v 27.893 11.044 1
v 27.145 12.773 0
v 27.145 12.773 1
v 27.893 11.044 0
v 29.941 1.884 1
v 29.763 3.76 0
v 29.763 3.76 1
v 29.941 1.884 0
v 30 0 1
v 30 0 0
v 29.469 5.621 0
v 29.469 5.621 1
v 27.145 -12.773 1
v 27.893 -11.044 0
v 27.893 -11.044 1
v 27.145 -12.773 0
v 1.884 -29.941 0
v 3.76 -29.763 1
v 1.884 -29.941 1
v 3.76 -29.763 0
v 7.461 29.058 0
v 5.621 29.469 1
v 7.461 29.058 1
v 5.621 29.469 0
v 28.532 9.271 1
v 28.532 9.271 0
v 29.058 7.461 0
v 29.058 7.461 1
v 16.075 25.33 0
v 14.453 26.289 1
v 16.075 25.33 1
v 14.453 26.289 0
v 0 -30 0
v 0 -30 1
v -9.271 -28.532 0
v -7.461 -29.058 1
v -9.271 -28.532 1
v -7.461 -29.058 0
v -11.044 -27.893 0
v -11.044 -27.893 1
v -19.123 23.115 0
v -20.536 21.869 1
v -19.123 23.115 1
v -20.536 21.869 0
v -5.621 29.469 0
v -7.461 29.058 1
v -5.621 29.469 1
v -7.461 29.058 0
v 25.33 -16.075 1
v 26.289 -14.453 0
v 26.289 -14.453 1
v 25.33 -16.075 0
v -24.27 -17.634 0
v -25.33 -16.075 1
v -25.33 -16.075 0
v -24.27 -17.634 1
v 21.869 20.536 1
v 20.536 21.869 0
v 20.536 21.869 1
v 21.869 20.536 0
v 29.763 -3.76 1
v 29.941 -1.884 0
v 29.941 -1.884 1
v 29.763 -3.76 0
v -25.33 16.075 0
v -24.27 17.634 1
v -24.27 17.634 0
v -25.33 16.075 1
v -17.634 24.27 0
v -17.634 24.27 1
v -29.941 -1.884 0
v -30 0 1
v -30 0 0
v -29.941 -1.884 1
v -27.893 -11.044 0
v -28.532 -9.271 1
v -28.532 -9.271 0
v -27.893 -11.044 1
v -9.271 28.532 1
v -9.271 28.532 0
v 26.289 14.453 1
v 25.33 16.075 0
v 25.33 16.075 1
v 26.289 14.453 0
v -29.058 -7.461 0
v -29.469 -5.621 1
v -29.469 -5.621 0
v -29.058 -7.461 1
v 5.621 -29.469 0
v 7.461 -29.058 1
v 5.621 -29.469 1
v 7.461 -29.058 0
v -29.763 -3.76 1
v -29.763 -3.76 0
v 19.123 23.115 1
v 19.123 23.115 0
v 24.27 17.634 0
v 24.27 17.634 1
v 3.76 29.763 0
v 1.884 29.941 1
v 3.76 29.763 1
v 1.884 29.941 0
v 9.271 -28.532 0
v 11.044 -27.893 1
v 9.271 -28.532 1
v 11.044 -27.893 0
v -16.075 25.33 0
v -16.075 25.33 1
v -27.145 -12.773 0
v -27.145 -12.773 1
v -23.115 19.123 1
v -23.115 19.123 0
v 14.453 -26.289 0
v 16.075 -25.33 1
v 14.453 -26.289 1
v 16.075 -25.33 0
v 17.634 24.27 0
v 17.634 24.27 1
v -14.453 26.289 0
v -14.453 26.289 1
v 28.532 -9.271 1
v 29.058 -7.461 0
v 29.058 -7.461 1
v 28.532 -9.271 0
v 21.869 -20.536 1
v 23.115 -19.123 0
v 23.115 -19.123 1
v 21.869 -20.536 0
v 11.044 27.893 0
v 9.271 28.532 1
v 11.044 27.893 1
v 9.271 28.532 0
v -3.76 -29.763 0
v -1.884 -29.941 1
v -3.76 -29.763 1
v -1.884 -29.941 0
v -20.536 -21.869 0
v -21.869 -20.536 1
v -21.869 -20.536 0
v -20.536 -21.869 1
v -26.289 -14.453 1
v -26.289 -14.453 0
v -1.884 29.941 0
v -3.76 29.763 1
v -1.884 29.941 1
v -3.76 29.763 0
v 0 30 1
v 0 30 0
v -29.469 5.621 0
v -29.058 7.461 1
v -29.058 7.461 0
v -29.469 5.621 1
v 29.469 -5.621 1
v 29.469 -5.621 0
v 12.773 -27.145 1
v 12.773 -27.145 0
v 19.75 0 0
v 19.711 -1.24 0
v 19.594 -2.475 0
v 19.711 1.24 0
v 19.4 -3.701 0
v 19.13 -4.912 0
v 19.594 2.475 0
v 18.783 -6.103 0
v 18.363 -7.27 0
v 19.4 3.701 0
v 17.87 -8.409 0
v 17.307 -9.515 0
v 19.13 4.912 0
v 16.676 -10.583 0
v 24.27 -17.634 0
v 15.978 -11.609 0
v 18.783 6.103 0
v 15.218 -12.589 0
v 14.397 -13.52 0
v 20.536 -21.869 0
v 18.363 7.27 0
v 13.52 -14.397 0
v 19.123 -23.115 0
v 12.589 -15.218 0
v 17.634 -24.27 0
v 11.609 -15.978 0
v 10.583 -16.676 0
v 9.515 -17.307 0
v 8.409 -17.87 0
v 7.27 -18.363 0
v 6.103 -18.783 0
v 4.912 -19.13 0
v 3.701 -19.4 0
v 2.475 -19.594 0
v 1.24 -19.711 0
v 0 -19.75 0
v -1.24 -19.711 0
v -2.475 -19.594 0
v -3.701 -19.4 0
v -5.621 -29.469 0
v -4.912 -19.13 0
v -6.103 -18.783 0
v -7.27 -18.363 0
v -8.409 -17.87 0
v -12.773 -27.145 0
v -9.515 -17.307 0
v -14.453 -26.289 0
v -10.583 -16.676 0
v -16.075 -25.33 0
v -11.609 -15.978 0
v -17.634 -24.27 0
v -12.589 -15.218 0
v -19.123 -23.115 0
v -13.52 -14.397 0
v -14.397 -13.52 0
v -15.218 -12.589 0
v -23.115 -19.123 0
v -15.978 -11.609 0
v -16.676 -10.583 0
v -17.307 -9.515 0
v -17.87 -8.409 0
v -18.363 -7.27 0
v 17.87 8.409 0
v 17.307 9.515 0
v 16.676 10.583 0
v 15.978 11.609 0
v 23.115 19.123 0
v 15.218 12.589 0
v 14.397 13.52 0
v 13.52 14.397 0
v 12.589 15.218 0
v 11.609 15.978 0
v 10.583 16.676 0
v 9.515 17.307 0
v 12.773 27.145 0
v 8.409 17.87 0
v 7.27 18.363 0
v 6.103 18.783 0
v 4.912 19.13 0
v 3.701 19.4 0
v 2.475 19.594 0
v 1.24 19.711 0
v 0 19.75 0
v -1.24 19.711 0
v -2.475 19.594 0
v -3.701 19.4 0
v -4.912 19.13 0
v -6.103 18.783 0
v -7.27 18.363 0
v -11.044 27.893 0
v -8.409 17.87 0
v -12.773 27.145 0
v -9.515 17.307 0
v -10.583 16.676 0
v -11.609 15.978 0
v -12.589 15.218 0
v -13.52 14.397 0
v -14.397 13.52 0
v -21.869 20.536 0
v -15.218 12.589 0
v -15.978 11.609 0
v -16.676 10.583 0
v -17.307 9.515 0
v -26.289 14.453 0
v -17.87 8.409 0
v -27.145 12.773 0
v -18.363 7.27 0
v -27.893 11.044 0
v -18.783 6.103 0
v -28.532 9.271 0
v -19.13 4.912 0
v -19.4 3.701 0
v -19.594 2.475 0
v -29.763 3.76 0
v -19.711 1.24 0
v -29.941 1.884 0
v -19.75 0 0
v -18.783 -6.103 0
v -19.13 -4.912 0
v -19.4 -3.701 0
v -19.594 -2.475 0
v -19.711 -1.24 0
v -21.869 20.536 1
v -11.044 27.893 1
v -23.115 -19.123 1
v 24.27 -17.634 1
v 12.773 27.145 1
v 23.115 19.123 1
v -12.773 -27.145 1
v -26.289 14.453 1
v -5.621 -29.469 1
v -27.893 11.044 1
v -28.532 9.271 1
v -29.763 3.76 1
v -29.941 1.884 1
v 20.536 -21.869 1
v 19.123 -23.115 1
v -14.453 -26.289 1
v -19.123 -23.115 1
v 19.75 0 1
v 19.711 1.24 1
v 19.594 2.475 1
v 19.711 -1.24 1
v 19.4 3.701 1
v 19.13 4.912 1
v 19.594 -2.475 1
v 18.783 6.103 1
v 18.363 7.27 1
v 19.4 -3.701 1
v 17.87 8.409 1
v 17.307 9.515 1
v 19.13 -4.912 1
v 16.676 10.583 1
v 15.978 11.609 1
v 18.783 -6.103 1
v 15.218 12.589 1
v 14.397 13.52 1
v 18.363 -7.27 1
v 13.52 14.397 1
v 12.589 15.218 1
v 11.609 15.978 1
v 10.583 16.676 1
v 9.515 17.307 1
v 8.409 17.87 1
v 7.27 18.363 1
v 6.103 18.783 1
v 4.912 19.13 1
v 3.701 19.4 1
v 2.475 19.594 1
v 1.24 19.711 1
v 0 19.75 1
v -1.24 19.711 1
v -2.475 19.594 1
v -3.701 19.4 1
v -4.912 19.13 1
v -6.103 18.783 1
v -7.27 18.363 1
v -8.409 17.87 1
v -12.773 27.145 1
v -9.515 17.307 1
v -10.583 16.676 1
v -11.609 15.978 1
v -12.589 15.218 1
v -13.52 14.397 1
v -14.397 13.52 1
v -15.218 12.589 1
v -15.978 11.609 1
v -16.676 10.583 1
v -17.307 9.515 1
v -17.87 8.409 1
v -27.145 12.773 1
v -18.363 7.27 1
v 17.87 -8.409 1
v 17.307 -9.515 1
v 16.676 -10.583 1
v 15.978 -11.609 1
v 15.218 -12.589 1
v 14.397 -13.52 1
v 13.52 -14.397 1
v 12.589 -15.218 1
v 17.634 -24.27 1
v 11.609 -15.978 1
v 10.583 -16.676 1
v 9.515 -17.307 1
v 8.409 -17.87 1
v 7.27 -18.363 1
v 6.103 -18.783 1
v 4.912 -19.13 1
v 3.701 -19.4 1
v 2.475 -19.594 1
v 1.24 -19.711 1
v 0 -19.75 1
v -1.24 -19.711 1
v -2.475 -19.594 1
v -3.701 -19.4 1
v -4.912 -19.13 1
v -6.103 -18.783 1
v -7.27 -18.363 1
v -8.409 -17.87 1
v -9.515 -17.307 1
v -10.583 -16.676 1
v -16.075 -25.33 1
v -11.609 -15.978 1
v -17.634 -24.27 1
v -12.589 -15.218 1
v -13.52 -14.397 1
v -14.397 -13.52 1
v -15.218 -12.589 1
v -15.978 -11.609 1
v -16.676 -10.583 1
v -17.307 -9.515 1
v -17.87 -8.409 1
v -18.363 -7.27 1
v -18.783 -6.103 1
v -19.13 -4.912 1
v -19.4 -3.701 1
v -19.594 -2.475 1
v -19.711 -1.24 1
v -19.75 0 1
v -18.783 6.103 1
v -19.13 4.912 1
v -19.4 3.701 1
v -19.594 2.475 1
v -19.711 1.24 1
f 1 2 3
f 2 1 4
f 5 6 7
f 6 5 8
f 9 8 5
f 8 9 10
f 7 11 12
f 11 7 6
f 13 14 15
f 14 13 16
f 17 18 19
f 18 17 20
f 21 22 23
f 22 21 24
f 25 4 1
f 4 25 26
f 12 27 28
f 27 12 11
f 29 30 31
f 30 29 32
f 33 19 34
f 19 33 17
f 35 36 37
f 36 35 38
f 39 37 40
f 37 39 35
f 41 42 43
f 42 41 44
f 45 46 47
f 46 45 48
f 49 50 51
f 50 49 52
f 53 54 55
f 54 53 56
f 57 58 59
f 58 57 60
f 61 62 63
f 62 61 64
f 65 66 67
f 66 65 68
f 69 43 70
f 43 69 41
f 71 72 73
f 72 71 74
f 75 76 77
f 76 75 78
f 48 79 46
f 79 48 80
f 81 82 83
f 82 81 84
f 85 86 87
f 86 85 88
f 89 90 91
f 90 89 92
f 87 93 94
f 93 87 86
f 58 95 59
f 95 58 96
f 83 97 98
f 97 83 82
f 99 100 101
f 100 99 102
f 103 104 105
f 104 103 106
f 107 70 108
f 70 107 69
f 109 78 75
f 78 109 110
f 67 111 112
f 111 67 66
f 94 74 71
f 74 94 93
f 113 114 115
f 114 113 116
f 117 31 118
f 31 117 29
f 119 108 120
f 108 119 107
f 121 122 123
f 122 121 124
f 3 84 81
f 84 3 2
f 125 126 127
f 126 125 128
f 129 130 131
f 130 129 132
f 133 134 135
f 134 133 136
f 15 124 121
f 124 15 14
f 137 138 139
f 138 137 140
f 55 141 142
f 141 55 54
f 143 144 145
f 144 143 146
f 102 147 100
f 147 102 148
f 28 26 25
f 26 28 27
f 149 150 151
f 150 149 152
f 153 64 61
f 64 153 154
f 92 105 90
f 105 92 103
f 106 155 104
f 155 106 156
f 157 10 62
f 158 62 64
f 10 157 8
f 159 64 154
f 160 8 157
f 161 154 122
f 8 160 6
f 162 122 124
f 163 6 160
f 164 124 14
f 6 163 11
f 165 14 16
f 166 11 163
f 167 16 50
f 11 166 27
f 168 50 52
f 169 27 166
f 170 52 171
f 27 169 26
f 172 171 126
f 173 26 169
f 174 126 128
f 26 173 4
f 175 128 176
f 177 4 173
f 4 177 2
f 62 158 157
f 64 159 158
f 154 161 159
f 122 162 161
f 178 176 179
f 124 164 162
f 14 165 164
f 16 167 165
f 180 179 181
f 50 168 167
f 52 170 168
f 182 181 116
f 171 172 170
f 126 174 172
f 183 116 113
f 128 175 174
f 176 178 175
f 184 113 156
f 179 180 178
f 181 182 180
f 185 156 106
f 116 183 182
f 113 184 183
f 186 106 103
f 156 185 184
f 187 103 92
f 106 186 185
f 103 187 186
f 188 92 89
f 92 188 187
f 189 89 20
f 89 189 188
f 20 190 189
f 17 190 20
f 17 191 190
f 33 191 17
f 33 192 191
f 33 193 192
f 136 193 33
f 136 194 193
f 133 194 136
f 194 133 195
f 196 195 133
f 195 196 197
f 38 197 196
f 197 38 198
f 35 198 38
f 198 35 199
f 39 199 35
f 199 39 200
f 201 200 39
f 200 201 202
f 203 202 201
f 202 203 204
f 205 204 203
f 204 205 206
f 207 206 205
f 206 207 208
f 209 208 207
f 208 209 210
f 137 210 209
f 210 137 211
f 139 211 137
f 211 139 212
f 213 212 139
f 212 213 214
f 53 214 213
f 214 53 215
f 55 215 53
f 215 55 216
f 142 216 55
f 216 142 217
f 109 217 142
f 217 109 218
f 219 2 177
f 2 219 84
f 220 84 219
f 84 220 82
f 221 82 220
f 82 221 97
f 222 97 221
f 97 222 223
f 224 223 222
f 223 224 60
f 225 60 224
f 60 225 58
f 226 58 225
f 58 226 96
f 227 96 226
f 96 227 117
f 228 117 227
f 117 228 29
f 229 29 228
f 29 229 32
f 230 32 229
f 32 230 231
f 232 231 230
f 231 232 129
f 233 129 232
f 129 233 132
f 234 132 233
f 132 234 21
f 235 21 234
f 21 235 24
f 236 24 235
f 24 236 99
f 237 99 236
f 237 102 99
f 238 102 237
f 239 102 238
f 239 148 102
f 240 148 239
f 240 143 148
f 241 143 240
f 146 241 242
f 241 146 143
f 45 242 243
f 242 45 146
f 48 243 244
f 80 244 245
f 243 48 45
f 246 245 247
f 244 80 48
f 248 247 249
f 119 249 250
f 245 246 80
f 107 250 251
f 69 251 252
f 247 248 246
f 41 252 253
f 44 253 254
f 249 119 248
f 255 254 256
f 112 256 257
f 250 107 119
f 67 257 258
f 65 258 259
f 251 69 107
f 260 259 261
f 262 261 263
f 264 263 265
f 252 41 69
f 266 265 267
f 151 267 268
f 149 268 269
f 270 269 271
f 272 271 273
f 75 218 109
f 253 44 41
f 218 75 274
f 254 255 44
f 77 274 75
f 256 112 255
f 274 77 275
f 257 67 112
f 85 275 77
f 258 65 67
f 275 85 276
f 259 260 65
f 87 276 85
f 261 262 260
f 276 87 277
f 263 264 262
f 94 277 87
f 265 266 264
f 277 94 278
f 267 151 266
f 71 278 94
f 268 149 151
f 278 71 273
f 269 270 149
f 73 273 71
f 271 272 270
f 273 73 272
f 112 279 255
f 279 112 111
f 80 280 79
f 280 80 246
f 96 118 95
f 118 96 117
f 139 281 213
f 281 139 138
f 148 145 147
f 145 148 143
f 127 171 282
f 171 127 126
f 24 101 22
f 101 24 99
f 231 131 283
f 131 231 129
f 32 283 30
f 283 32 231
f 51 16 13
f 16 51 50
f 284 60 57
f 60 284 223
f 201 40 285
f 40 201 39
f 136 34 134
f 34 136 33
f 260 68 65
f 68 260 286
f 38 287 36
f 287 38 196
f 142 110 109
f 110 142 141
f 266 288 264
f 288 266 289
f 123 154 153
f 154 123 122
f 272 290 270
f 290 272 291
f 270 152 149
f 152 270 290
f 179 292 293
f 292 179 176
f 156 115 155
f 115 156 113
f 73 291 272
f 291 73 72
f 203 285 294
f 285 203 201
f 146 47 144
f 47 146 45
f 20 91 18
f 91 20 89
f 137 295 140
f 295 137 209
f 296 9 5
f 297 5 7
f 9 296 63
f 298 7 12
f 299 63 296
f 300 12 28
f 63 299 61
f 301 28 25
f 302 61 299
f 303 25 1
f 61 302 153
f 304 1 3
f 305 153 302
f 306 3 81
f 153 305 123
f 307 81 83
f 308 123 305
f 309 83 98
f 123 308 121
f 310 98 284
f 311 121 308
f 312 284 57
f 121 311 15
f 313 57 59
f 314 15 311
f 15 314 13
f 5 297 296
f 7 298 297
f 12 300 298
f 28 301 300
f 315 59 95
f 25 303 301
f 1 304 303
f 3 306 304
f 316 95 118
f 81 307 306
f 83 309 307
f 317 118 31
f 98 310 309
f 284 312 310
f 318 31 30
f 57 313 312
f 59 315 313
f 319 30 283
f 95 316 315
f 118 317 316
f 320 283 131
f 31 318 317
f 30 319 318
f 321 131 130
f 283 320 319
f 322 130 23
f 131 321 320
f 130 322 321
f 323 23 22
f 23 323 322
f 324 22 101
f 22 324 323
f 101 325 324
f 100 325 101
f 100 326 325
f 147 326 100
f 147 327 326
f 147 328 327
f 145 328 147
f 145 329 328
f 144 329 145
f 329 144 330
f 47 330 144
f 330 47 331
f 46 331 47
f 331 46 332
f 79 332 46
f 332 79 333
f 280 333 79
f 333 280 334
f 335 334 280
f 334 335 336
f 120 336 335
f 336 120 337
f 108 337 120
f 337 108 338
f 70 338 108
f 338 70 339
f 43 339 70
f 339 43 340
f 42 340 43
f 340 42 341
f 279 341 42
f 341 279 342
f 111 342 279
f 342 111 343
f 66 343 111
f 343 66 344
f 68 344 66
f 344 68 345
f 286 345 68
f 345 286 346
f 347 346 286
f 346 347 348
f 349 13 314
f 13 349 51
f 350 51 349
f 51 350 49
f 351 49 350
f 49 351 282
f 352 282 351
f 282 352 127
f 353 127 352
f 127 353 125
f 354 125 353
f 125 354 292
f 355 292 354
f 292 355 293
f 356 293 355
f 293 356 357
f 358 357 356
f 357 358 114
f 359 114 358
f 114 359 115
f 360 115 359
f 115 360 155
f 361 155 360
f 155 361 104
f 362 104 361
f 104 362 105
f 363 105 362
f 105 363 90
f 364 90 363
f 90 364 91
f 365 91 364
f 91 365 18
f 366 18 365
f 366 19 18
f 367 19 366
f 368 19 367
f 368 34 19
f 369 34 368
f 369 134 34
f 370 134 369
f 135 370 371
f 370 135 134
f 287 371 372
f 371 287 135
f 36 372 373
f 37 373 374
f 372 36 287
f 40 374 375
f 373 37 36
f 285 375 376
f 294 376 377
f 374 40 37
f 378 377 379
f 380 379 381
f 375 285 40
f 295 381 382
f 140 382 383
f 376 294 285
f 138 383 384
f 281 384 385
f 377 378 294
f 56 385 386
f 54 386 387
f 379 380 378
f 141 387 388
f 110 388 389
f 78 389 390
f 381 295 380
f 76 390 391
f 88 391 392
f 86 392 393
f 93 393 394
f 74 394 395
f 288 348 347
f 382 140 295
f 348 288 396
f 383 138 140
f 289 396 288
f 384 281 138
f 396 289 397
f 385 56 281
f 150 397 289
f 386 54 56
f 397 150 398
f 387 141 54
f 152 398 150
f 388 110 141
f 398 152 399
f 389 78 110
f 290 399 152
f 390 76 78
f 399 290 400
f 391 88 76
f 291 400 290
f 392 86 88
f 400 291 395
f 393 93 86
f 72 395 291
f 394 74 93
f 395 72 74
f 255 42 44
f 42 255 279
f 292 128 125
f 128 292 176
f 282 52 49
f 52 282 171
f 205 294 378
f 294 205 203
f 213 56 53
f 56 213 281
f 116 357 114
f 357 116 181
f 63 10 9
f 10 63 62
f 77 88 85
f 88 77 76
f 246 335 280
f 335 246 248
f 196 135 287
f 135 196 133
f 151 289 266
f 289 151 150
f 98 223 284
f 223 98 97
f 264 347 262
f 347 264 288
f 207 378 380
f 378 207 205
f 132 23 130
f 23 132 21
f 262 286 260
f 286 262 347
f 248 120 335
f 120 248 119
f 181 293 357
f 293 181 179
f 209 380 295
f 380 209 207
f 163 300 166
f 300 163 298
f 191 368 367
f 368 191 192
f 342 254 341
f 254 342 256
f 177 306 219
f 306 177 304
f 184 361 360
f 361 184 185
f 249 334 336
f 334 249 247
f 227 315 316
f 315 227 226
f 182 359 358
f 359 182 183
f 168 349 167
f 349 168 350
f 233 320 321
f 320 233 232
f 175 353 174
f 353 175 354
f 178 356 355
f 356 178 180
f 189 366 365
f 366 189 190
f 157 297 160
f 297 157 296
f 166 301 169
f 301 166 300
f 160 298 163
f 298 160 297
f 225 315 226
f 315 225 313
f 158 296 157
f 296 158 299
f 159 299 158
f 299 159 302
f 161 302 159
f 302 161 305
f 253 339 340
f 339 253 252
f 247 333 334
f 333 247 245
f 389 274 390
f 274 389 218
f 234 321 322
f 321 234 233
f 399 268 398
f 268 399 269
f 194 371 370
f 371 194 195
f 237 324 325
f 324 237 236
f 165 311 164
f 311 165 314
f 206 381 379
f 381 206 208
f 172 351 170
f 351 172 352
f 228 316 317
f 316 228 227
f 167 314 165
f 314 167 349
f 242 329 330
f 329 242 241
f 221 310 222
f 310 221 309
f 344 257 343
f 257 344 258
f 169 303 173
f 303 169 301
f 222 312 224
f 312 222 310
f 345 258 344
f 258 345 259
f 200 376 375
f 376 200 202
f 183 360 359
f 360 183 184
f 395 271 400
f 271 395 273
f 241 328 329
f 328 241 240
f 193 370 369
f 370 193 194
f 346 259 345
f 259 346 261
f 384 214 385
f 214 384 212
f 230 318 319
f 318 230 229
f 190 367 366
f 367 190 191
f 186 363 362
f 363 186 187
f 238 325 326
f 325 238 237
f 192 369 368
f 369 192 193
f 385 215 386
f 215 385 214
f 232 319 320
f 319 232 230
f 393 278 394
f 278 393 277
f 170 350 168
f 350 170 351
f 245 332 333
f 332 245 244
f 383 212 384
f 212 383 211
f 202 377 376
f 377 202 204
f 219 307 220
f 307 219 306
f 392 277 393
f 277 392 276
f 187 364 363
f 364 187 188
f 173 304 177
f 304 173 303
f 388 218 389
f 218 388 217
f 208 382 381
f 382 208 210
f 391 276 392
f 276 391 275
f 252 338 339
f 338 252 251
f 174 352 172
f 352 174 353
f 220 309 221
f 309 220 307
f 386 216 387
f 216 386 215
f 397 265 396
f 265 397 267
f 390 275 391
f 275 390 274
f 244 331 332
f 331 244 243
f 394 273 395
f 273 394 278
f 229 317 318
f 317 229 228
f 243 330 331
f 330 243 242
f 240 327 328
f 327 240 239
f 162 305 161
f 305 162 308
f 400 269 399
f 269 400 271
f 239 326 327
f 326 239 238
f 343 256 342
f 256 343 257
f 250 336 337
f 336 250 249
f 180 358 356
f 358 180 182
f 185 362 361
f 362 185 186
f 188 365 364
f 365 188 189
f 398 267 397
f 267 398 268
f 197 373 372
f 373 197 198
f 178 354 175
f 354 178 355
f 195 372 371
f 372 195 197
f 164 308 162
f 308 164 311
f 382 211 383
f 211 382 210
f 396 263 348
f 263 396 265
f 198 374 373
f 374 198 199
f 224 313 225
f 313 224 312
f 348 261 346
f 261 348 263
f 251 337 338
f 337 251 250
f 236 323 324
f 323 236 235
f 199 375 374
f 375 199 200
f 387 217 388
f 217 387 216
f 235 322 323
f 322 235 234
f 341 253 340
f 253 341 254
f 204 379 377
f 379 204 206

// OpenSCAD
//in milimeters
//material flex
//t 90/245
hole_diameter=39.5;
outer_diameter=60;
thickness=1;

translate([0,0,thickness/2]){
difference(){
//outer
cylinder(h=thickness,r=outer_diameter/2,center=true,$fn=100);
//hole
cylinder(h=thickness+2,r=hole_diameter/2,center=true,$fn=100);
}
}
